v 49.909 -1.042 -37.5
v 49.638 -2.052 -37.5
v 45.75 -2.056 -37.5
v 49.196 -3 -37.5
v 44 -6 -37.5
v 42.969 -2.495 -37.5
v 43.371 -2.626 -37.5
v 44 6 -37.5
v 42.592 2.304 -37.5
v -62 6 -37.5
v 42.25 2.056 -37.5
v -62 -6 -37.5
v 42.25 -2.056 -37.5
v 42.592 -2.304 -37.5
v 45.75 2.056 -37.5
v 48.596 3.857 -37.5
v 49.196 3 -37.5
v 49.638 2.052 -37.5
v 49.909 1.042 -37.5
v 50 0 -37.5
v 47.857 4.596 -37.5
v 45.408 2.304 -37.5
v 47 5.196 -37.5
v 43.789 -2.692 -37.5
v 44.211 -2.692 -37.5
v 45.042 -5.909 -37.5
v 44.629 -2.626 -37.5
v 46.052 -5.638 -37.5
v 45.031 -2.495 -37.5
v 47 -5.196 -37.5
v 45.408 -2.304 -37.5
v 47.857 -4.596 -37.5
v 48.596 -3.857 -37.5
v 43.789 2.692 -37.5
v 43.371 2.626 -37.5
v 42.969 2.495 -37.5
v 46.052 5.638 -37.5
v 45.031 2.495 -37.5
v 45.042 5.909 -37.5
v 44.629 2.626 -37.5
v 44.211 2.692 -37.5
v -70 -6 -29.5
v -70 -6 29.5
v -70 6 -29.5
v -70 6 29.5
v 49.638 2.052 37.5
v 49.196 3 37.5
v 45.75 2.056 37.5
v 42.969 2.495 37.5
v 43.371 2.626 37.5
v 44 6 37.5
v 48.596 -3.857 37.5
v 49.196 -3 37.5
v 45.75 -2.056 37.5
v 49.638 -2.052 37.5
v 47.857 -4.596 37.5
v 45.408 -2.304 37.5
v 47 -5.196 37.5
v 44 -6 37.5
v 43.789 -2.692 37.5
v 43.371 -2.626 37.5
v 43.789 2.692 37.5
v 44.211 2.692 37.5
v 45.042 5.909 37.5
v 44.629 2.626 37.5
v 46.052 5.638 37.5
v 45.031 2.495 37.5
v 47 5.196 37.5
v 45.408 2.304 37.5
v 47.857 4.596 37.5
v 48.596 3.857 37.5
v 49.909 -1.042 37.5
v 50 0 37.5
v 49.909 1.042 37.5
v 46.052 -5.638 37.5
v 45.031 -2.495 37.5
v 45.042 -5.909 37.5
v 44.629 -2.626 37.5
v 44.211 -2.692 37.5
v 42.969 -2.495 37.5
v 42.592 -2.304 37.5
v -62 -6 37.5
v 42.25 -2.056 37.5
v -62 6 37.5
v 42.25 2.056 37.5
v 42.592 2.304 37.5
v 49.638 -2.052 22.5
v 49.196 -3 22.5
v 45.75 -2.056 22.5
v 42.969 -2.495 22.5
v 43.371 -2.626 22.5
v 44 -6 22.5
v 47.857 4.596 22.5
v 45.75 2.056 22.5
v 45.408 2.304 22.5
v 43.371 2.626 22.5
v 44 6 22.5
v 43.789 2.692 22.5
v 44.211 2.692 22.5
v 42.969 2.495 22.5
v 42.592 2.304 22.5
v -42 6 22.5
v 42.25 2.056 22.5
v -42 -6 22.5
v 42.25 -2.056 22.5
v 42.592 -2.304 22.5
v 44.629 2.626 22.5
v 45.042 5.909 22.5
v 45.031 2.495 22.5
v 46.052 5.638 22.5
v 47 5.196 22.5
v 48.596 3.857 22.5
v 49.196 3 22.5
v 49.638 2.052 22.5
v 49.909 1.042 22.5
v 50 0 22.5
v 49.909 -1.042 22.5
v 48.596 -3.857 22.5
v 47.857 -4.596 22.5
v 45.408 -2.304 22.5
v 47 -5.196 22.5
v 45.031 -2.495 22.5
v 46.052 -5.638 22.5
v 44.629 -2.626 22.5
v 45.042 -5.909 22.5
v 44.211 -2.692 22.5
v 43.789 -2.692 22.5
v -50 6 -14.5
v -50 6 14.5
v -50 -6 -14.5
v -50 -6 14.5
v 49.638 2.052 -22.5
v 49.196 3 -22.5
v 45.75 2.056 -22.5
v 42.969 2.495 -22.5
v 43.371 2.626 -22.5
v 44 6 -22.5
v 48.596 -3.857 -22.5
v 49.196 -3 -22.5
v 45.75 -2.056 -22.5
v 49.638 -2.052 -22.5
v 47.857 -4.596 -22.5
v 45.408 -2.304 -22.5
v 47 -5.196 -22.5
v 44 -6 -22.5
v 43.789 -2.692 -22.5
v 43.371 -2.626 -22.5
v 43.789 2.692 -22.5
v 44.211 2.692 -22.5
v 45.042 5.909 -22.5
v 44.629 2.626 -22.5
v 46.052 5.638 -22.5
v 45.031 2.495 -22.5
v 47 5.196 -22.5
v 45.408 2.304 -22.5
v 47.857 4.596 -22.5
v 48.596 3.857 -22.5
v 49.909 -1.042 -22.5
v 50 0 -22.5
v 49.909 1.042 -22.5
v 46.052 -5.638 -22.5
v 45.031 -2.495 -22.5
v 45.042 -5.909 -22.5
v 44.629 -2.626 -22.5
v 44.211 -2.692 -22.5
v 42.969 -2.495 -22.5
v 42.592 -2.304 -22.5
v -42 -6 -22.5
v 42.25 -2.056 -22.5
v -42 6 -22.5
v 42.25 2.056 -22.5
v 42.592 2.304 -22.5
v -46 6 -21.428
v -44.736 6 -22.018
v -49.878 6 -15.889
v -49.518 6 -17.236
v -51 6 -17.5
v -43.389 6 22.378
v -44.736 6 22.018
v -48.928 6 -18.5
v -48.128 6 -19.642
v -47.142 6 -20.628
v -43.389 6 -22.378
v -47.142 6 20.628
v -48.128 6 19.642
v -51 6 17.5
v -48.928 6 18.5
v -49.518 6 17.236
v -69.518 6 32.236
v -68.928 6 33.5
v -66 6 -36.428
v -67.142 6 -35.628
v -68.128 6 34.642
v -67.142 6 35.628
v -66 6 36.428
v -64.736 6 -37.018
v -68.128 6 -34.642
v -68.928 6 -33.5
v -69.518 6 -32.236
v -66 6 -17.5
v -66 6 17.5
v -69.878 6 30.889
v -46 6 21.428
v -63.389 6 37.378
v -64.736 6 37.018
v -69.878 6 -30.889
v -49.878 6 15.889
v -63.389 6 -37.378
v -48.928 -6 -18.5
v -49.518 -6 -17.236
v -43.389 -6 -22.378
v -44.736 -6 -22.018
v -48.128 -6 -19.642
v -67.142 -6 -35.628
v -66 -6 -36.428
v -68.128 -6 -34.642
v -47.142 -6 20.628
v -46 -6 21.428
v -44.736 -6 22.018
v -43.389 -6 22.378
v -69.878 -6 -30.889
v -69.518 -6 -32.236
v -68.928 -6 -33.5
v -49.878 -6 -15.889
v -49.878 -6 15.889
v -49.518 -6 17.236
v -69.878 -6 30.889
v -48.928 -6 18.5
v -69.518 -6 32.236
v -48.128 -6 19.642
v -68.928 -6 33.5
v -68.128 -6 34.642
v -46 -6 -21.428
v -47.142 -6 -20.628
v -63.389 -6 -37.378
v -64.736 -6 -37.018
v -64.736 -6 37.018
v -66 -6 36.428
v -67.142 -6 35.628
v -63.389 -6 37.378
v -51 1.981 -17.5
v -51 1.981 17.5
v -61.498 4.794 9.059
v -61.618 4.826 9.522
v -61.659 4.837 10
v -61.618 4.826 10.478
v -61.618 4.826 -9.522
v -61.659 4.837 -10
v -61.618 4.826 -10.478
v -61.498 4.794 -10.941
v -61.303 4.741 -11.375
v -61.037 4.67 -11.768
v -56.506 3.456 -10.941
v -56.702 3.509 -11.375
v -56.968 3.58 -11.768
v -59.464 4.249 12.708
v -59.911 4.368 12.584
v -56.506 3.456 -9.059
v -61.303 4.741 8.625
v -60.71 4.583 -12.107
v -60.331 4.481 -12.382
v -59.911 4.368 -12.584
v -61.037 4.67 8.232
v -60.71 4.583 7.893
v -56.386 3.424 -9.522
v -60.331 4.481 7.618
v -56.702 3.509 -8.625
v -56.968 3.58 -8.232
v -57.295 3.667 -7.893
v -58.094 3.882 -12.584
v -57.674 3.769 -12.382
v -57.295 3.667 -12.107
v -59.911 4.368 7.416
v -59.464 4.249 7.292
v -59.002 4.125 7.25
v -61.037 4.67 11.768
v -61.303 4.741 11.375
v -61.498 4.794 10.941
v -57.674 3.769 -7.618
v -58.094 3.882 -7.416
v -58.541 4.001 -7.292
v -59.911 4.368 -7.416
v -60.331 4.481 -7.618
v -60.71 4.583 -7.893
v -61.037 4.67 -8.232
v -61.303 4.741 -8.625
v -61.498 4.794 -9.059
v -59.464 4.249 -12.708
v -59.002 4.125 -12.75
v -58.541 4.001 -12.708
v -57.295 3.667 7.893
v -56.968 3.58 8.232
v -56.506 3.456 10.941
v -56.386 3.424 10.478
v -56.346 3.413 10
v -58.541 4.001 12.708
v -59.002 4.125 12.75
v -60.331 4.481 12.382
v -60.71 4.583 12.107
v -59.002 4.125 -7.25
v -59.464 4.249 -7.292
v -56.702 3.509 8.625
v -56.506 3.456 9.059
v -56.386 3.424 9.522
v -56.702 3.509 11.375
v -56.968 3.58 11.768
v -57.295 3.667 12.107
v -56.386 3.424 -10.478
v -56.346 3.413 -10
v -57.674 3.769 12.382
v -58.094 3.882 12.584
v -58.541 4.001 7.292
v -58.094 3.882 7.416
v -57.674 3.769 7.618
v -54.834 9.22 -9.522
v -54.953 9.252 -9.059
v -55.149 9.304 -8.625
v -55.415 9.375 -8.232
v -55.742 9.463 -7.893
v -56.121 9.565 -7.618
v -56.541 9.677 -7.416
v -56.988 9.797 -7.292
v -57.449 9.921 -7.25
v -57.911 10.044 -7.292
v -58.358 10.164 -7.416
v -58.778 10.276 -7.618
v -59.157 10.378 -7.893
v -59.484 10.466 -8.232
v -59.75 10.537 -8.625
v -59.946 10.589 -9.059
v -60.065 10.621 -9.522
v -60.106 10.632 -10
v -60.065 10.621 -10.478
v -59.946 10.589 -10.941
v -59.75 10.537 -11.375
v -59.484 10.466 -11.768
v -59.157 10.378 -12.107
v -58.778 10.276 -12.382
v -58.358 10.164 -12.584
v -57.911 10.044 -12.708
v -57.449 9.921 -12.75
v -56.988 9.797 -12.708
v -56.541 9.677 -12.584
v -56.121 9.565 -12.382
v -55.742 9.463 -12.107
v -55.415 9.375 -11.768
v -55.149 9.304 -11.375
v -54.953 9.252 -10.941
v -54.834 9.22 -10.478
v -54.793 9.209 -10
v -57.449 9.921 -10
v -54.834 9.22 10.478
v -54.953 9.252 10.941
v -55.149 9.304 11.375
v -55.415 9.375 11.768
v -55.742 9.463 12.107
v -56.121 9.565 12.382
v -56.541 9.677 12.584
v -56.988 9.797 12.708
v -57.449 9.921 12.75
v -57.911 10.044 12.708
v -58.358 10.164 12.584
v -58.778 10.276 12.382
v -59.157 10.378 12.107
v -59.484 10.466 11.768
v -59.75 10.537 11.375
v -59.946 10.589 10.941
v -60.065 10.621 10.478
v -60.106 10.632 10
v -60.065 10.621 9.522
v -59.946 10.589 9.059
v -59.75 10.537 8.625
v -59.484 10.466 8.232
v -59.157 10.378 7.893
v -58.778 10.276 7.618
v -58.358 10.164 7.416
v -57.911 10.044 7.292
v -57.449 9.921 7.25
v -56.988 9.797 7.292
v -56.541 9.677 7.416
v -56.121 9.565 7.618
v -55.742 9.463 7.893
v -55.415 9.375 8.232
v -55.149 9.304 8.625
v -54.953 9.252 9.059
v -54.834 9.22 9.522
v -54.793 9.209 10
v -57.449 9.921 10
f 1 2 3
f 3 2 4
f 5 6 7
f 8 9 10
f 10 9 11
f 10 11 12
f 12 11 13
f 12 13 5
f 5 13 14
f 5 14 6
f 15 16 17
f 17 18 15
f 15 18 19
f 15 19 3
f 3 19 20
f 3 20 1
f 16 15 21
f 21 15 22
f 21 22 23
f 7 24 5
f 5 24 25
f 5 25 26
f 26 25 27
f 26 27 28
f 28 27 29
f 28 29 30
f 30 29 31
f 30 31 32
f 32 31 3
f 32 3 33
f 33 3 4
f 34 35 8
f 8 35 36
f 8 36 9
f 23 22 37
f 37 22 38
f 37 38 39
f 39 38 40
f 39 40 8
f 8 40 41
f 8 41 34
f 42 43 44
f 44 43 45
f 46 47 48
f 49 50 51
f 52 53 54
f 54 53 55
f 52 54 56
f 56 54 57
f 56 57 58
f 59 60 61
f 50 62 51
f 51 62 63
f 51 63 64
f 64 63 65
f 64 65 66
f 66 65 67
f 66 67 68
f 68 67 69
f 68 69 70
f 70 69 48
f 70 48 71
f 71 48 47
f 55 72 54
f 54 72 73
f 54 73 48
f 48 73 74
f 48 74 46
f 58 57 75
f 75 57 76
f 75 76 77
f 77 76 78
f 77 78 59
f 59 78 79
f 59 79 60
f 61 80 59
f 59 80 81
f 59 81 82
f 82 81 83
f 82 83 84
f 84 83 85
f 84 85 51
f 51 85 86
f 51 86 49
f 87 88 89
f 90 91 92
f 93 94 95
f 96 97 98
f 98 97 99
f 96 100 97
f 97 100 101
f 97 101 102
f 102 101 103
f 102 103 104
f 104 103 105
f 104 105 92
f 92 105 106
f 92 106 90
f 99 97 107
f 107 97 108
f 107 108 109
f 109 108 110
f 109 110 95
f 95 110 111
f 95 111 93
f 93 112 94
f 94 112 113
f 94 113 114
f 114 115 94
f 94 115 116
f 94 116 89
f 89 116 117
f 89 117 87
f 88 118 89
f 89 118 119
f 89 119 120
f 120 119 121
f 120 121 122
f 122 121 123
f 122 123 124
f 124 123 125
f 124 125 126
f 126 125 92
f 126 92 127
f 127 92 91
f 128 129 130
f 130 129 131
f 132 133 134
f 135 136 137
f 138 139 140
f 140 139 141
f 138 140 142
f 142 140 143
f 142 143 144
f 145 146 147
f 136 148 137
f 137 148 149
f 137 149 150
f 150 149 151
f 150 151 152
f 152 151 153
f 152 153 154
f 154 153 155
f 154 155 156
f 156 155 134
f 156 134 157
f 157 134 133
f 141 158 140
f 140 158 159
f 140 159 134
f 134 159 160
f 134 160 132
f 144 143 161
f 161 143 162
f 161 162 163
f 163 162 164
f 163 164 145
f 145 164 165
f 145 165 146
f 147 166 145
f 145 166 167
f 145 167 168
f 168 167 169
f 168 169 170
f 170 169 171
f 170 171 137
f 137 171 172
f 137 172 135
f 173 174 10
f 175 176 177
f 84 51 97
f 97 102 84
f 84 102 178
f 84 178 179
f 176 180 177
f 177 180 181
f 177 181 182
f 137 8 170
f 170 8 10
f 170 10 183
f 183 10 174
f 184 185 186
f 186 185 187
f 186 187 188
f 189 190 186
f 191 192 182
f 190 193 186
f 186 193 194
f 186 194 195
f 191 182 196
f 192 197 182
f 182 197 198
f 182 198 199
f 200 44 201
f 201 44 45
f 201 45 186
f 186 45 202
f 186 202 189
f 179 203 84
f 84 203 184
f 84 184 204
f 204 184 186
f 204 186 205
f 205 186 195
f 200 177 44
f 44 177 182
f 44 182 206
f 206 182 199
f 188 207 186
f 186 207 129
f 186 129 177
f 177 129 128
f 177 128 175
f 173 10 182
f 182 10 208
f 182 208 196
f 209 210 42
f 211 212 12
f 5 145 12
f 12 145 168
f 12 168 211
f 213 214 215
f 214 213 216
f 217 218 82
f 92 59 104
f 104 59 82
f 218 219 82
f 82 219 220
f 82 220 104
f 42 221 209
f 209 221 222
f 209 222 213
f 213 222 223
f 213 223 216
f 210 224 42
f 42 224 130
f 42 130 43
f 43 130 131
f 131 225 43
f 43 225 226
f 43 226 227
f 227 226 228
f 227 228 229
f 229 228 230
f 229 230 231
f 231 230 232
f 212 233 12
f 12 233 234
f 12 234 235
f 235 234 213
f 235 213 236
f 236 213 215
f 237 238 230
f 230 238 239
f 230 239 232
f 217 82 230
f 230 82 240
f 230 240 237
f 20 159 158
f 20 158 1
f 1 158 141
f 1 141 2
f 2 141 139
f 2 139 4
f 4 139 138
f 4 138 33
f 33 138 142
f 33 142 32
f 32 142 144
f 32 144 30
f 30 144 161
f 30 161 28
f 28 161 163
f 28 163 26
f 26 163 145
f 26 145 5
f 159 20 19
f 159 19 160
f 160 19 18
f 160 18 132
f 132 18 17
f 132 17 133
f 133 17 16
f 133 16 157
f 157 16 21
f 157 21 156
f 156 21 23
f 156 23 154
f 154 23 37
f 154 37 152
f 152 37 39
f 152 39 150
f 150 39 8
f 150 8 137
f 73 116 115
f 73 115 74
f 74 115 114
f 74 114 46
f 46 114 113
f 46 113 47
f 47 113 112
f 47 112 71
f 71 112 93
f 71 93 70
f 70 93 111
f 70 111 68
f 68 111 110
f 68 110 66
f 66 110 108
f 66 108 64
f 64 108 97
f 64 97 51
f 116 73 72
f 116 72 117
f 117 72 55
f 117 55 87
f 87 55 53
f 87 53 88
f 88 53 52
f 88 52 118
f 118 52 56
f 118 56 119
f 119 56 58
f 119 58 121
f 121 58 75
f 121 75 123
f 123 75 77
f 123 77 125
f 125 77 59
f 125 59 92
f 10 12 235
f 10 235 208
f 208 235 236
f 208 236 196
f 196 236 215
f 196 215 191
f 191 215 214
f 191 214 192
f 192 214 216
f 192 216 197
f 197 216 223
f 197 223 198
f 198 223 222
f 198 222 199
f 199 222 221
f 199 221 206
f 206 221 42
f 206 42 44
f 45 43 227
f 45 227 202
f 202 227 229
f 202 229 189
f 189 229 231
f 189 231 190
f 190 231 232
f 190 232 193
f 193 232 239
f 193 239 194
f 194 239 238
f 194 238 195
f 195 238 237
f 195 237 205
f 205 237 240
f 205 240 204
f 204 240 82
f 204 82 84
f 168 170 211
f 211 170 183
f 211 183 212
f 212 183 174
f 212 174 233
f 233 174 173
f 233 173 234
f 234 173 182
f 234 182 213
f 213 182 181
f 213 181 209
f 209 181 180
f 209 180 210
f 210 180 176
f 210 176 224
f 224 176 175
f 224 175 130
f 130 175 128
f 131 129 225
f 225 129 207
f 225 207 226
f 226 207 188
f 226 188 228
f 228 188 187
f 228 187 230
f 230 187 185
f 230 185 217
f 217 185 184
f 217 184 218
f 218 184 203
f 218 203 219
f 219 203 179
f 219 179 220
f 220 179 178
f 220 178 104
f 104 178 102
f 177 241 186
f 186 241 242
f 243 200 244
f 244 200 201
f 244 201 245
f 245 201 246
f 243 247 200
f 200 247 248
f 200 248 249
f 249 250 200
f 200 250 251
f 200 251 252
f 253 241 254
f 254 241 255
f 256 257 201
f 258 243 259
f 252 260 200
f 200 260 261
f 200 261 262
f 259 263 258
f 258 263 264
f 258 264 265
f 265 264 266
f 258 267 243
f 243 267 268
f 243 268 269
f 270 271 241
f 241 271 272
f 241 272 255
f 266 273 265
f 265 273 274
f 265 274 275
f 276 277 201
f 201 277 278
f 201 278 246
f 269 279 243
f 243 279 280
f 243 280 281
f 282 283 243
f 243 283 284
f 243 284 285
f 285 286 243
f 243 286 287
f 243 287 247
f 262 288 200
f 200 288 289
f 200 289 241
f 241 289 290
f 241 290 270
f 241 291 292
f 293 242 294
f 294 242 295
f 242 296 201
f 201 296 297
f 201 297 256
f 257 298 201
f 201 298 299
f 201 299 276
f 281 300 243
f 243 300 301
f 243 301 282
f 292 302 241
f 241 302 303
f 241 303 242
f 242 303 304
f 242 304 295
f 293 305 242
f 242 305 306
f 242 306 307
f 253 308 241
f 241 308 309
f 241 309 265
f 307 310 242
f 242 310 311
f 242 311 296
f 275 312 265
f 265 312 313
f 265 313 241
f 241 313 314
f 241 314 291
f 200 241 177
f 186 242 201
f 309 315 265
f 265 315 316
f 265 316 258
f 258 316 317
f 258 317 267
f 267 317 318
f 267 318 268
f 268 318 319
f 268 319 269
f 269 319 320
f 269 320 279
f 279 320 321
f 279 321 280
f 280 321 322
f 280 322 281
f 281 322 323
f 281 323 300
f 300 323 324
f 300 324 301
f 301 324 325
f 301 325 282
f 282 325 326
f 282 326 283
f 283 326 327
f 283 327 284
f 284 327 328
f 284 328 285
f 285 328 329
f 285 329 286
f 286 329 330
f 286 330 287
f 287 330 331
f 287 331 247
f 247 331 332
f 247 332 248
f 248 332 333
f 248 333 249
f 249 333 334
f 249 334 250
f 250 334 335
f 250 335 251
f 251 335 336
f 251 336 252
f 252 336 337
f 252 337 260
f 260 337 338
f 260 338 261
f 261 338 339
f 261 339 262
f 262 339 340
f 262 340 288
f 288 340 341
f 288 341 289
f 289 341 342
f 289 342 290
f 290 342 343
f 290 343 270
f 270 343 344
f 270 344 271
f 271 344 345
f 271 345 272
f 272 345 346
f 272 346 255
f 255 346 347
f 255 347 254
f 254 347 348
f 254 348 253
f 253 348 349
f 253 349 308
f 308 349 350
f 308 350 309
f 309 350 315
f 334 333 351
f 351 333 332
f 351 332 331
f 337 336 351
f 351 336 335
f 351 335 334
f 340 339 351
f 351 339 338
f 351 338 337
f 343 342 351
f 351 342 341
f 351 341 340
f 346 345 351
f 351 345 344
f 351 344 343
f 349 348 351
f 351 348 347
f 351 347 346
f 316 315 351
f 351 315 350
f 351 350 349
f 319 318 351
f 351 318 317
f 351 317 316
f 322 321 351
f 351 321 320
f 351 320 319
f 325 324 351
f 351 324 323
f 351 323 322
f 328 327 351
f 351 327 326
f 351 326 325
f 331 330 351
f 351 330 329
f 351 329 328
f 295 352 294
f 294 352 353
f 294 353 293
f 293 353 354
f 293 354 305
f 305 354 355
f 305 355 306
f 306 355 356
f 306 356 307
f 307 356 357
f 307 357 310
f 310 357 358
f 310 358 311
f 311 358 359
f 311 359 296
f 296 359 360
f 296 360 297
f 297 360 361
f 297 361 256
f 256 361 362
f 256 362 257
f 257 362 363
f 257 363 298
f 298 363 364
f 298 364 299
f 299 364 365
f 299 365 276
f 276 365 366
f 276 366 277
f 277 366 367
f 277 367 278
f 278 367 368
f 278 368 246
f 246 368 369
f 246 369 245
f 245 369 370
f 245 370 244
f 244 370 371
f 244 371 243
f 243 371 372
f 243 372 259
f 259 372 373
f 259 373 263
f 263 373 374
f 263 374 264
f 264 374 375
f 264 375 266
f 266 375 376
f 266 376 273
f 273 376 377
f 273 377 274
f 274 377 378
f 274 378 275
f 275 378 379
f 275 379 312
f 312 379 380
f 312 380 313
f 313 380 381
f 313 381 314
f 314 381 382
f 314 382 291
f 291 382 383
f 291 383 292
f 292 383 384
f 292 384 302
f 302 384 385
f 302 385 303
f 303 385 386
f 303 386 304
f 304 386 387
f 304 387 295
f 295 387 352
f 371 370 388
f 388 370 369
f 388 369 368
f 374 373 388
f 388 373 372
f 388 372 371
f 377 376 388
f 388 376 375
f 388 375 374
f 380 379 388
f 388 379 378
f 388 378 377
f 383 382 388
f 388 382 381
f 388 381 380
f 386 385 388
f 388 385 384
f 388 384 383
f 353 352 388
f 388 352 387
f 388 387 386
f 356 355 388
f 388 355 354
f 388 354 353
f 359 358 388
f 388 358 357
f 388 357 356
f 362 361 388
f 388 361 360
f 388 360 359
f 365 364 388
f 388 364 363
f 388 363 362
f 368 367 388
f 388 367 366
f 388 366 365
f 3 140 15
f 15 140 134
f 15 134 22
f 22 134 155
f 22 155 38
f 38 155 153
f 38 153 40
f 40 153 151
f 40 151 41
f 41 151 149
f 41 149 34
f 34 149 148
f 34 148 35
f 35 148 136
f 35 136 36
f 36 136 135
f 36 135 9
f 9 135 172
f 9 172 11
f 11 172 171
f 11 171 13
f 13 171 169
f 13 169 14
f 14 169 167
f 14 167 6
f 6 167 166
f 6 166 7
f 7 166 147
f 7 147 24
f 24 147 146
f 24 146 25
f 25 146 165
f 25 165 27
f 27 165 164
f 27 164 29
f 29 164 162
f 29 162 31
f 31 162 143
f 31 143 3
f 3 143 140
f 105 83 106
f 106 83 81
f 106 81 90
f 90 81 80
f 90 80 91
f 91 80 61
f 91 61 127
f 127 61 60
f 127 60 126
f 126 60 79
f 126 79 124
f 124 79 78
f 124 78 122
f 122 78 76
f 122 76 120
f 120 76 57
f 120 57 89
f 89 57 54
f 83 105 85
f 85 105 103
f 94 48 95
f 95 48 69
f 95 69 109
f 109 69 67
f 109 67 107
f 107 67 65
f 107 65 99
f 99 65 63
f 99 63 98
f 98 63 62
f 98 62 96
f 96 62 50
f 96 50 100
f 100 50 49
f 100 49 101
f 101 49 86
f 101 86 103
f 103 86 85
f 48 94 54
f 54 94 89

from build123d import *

# Parameters (mm, degrees)
BOSS_EXTRUDE1_DEPTH = 6
FILLET1_R           = 6
FILLET2_R           = 8
CUT_EXTRUDE1_DEPTH  = 17.5
SKETCH5_R           = 2.75
BOSS_EXTRUDE2_DEPTH = 6
CUT_EXTRUDE2_DEPTH  = 104.140903424


with BuildPart() as part:
    # Sketch1 → Boss-Extrude1 (new, symmetric)
    with BuildSketch(Plane(origin=(0, 0, 0), x_dir=(1, 0, 0), z_dir=(0, 1, 0))):
        Polygon((50, 37.5), (50, 22.5), (-50, 22.5), (-50, -22.5), (50, -22.5), (50, -37.5), (-70, -37.5), (-70, 37.5), align=None)
    extrude(amount=BOSS_EXTRUDE1_DEPTH, both=True)

    # Fillet1
    fillet1_edges = [part.edges().sort_by_distance(p)[0] for p in [
        (50, 6, -30),
        (50, -6, -30),
        (50, -6, 30),
        (50, 6, 30),
    ]]
    fillet(fillet1_edges, radius=FILLET1_R - 0.0001)  # a hair under: the kernel refuses the full size

    # Fillet2
    fillet2_edges = [part.edges().sort_by_distance(p)[0] for p in [
        (-50, 0, -22.5),
        (-50, 0, 22.5),
        (-70, 0, 37.5),
        (-70, 0, -37.5),
    ]]
    fillet(fillet2_edges, radius=FILLET2_R)

    # Sketch4 → Cut-Extrude1 (cut, symmetric)
    with BuildSketch(Plane.XY):
        Polygon((-66, 6), (-51, 1.980762114), (-51, 6), align=None)
    extrude(amount=CUT_EXTRUDE1_DEPTH, both=True, mode=Mode.SUBTRACT)

    # Sketch5 → Boss-Extrude2 (add)
    with BuildSketch(Plane(origin=(-2.921161675, -10.901923789, 0), x_dir=(0.9659258262890701, -0.25881904510251424, 0), z_dir=(0.25881904510251424, 0.9659258262890701, 0))):
        with Locations((-58.059575109, 10)):
            Circle(SKETCH5_R)
        with Locations((-58.059575109, -10)):
            Circle(SKETCH5_R)
    extrude(amount=BOSS_EXTRUDE2_DEPTH)

    # Sketch6 → Cut-Extrude2 (cut, through all)
    with BuildSketch(Plane.XY.offset(37.5)):
        with BuildLine():
            Line((42.25, -2.056088519), (42.25, 2.056088519))
            ThreePointArc((42.25, 2.056088519), (44, 2.7), (45.75, 2.056088519))
            Line((45.75, 2.056088519), (45.75, -2.056088519))
            ThreePointArc((45.75, -2.056088519), (44, -2.7), (42.25, -2.056088519))
        make_face()
    extrude(amount=-CUT_EXTRUDE2_DEPTH, mode=Mode.SUBTRACT)


solid = part.part
